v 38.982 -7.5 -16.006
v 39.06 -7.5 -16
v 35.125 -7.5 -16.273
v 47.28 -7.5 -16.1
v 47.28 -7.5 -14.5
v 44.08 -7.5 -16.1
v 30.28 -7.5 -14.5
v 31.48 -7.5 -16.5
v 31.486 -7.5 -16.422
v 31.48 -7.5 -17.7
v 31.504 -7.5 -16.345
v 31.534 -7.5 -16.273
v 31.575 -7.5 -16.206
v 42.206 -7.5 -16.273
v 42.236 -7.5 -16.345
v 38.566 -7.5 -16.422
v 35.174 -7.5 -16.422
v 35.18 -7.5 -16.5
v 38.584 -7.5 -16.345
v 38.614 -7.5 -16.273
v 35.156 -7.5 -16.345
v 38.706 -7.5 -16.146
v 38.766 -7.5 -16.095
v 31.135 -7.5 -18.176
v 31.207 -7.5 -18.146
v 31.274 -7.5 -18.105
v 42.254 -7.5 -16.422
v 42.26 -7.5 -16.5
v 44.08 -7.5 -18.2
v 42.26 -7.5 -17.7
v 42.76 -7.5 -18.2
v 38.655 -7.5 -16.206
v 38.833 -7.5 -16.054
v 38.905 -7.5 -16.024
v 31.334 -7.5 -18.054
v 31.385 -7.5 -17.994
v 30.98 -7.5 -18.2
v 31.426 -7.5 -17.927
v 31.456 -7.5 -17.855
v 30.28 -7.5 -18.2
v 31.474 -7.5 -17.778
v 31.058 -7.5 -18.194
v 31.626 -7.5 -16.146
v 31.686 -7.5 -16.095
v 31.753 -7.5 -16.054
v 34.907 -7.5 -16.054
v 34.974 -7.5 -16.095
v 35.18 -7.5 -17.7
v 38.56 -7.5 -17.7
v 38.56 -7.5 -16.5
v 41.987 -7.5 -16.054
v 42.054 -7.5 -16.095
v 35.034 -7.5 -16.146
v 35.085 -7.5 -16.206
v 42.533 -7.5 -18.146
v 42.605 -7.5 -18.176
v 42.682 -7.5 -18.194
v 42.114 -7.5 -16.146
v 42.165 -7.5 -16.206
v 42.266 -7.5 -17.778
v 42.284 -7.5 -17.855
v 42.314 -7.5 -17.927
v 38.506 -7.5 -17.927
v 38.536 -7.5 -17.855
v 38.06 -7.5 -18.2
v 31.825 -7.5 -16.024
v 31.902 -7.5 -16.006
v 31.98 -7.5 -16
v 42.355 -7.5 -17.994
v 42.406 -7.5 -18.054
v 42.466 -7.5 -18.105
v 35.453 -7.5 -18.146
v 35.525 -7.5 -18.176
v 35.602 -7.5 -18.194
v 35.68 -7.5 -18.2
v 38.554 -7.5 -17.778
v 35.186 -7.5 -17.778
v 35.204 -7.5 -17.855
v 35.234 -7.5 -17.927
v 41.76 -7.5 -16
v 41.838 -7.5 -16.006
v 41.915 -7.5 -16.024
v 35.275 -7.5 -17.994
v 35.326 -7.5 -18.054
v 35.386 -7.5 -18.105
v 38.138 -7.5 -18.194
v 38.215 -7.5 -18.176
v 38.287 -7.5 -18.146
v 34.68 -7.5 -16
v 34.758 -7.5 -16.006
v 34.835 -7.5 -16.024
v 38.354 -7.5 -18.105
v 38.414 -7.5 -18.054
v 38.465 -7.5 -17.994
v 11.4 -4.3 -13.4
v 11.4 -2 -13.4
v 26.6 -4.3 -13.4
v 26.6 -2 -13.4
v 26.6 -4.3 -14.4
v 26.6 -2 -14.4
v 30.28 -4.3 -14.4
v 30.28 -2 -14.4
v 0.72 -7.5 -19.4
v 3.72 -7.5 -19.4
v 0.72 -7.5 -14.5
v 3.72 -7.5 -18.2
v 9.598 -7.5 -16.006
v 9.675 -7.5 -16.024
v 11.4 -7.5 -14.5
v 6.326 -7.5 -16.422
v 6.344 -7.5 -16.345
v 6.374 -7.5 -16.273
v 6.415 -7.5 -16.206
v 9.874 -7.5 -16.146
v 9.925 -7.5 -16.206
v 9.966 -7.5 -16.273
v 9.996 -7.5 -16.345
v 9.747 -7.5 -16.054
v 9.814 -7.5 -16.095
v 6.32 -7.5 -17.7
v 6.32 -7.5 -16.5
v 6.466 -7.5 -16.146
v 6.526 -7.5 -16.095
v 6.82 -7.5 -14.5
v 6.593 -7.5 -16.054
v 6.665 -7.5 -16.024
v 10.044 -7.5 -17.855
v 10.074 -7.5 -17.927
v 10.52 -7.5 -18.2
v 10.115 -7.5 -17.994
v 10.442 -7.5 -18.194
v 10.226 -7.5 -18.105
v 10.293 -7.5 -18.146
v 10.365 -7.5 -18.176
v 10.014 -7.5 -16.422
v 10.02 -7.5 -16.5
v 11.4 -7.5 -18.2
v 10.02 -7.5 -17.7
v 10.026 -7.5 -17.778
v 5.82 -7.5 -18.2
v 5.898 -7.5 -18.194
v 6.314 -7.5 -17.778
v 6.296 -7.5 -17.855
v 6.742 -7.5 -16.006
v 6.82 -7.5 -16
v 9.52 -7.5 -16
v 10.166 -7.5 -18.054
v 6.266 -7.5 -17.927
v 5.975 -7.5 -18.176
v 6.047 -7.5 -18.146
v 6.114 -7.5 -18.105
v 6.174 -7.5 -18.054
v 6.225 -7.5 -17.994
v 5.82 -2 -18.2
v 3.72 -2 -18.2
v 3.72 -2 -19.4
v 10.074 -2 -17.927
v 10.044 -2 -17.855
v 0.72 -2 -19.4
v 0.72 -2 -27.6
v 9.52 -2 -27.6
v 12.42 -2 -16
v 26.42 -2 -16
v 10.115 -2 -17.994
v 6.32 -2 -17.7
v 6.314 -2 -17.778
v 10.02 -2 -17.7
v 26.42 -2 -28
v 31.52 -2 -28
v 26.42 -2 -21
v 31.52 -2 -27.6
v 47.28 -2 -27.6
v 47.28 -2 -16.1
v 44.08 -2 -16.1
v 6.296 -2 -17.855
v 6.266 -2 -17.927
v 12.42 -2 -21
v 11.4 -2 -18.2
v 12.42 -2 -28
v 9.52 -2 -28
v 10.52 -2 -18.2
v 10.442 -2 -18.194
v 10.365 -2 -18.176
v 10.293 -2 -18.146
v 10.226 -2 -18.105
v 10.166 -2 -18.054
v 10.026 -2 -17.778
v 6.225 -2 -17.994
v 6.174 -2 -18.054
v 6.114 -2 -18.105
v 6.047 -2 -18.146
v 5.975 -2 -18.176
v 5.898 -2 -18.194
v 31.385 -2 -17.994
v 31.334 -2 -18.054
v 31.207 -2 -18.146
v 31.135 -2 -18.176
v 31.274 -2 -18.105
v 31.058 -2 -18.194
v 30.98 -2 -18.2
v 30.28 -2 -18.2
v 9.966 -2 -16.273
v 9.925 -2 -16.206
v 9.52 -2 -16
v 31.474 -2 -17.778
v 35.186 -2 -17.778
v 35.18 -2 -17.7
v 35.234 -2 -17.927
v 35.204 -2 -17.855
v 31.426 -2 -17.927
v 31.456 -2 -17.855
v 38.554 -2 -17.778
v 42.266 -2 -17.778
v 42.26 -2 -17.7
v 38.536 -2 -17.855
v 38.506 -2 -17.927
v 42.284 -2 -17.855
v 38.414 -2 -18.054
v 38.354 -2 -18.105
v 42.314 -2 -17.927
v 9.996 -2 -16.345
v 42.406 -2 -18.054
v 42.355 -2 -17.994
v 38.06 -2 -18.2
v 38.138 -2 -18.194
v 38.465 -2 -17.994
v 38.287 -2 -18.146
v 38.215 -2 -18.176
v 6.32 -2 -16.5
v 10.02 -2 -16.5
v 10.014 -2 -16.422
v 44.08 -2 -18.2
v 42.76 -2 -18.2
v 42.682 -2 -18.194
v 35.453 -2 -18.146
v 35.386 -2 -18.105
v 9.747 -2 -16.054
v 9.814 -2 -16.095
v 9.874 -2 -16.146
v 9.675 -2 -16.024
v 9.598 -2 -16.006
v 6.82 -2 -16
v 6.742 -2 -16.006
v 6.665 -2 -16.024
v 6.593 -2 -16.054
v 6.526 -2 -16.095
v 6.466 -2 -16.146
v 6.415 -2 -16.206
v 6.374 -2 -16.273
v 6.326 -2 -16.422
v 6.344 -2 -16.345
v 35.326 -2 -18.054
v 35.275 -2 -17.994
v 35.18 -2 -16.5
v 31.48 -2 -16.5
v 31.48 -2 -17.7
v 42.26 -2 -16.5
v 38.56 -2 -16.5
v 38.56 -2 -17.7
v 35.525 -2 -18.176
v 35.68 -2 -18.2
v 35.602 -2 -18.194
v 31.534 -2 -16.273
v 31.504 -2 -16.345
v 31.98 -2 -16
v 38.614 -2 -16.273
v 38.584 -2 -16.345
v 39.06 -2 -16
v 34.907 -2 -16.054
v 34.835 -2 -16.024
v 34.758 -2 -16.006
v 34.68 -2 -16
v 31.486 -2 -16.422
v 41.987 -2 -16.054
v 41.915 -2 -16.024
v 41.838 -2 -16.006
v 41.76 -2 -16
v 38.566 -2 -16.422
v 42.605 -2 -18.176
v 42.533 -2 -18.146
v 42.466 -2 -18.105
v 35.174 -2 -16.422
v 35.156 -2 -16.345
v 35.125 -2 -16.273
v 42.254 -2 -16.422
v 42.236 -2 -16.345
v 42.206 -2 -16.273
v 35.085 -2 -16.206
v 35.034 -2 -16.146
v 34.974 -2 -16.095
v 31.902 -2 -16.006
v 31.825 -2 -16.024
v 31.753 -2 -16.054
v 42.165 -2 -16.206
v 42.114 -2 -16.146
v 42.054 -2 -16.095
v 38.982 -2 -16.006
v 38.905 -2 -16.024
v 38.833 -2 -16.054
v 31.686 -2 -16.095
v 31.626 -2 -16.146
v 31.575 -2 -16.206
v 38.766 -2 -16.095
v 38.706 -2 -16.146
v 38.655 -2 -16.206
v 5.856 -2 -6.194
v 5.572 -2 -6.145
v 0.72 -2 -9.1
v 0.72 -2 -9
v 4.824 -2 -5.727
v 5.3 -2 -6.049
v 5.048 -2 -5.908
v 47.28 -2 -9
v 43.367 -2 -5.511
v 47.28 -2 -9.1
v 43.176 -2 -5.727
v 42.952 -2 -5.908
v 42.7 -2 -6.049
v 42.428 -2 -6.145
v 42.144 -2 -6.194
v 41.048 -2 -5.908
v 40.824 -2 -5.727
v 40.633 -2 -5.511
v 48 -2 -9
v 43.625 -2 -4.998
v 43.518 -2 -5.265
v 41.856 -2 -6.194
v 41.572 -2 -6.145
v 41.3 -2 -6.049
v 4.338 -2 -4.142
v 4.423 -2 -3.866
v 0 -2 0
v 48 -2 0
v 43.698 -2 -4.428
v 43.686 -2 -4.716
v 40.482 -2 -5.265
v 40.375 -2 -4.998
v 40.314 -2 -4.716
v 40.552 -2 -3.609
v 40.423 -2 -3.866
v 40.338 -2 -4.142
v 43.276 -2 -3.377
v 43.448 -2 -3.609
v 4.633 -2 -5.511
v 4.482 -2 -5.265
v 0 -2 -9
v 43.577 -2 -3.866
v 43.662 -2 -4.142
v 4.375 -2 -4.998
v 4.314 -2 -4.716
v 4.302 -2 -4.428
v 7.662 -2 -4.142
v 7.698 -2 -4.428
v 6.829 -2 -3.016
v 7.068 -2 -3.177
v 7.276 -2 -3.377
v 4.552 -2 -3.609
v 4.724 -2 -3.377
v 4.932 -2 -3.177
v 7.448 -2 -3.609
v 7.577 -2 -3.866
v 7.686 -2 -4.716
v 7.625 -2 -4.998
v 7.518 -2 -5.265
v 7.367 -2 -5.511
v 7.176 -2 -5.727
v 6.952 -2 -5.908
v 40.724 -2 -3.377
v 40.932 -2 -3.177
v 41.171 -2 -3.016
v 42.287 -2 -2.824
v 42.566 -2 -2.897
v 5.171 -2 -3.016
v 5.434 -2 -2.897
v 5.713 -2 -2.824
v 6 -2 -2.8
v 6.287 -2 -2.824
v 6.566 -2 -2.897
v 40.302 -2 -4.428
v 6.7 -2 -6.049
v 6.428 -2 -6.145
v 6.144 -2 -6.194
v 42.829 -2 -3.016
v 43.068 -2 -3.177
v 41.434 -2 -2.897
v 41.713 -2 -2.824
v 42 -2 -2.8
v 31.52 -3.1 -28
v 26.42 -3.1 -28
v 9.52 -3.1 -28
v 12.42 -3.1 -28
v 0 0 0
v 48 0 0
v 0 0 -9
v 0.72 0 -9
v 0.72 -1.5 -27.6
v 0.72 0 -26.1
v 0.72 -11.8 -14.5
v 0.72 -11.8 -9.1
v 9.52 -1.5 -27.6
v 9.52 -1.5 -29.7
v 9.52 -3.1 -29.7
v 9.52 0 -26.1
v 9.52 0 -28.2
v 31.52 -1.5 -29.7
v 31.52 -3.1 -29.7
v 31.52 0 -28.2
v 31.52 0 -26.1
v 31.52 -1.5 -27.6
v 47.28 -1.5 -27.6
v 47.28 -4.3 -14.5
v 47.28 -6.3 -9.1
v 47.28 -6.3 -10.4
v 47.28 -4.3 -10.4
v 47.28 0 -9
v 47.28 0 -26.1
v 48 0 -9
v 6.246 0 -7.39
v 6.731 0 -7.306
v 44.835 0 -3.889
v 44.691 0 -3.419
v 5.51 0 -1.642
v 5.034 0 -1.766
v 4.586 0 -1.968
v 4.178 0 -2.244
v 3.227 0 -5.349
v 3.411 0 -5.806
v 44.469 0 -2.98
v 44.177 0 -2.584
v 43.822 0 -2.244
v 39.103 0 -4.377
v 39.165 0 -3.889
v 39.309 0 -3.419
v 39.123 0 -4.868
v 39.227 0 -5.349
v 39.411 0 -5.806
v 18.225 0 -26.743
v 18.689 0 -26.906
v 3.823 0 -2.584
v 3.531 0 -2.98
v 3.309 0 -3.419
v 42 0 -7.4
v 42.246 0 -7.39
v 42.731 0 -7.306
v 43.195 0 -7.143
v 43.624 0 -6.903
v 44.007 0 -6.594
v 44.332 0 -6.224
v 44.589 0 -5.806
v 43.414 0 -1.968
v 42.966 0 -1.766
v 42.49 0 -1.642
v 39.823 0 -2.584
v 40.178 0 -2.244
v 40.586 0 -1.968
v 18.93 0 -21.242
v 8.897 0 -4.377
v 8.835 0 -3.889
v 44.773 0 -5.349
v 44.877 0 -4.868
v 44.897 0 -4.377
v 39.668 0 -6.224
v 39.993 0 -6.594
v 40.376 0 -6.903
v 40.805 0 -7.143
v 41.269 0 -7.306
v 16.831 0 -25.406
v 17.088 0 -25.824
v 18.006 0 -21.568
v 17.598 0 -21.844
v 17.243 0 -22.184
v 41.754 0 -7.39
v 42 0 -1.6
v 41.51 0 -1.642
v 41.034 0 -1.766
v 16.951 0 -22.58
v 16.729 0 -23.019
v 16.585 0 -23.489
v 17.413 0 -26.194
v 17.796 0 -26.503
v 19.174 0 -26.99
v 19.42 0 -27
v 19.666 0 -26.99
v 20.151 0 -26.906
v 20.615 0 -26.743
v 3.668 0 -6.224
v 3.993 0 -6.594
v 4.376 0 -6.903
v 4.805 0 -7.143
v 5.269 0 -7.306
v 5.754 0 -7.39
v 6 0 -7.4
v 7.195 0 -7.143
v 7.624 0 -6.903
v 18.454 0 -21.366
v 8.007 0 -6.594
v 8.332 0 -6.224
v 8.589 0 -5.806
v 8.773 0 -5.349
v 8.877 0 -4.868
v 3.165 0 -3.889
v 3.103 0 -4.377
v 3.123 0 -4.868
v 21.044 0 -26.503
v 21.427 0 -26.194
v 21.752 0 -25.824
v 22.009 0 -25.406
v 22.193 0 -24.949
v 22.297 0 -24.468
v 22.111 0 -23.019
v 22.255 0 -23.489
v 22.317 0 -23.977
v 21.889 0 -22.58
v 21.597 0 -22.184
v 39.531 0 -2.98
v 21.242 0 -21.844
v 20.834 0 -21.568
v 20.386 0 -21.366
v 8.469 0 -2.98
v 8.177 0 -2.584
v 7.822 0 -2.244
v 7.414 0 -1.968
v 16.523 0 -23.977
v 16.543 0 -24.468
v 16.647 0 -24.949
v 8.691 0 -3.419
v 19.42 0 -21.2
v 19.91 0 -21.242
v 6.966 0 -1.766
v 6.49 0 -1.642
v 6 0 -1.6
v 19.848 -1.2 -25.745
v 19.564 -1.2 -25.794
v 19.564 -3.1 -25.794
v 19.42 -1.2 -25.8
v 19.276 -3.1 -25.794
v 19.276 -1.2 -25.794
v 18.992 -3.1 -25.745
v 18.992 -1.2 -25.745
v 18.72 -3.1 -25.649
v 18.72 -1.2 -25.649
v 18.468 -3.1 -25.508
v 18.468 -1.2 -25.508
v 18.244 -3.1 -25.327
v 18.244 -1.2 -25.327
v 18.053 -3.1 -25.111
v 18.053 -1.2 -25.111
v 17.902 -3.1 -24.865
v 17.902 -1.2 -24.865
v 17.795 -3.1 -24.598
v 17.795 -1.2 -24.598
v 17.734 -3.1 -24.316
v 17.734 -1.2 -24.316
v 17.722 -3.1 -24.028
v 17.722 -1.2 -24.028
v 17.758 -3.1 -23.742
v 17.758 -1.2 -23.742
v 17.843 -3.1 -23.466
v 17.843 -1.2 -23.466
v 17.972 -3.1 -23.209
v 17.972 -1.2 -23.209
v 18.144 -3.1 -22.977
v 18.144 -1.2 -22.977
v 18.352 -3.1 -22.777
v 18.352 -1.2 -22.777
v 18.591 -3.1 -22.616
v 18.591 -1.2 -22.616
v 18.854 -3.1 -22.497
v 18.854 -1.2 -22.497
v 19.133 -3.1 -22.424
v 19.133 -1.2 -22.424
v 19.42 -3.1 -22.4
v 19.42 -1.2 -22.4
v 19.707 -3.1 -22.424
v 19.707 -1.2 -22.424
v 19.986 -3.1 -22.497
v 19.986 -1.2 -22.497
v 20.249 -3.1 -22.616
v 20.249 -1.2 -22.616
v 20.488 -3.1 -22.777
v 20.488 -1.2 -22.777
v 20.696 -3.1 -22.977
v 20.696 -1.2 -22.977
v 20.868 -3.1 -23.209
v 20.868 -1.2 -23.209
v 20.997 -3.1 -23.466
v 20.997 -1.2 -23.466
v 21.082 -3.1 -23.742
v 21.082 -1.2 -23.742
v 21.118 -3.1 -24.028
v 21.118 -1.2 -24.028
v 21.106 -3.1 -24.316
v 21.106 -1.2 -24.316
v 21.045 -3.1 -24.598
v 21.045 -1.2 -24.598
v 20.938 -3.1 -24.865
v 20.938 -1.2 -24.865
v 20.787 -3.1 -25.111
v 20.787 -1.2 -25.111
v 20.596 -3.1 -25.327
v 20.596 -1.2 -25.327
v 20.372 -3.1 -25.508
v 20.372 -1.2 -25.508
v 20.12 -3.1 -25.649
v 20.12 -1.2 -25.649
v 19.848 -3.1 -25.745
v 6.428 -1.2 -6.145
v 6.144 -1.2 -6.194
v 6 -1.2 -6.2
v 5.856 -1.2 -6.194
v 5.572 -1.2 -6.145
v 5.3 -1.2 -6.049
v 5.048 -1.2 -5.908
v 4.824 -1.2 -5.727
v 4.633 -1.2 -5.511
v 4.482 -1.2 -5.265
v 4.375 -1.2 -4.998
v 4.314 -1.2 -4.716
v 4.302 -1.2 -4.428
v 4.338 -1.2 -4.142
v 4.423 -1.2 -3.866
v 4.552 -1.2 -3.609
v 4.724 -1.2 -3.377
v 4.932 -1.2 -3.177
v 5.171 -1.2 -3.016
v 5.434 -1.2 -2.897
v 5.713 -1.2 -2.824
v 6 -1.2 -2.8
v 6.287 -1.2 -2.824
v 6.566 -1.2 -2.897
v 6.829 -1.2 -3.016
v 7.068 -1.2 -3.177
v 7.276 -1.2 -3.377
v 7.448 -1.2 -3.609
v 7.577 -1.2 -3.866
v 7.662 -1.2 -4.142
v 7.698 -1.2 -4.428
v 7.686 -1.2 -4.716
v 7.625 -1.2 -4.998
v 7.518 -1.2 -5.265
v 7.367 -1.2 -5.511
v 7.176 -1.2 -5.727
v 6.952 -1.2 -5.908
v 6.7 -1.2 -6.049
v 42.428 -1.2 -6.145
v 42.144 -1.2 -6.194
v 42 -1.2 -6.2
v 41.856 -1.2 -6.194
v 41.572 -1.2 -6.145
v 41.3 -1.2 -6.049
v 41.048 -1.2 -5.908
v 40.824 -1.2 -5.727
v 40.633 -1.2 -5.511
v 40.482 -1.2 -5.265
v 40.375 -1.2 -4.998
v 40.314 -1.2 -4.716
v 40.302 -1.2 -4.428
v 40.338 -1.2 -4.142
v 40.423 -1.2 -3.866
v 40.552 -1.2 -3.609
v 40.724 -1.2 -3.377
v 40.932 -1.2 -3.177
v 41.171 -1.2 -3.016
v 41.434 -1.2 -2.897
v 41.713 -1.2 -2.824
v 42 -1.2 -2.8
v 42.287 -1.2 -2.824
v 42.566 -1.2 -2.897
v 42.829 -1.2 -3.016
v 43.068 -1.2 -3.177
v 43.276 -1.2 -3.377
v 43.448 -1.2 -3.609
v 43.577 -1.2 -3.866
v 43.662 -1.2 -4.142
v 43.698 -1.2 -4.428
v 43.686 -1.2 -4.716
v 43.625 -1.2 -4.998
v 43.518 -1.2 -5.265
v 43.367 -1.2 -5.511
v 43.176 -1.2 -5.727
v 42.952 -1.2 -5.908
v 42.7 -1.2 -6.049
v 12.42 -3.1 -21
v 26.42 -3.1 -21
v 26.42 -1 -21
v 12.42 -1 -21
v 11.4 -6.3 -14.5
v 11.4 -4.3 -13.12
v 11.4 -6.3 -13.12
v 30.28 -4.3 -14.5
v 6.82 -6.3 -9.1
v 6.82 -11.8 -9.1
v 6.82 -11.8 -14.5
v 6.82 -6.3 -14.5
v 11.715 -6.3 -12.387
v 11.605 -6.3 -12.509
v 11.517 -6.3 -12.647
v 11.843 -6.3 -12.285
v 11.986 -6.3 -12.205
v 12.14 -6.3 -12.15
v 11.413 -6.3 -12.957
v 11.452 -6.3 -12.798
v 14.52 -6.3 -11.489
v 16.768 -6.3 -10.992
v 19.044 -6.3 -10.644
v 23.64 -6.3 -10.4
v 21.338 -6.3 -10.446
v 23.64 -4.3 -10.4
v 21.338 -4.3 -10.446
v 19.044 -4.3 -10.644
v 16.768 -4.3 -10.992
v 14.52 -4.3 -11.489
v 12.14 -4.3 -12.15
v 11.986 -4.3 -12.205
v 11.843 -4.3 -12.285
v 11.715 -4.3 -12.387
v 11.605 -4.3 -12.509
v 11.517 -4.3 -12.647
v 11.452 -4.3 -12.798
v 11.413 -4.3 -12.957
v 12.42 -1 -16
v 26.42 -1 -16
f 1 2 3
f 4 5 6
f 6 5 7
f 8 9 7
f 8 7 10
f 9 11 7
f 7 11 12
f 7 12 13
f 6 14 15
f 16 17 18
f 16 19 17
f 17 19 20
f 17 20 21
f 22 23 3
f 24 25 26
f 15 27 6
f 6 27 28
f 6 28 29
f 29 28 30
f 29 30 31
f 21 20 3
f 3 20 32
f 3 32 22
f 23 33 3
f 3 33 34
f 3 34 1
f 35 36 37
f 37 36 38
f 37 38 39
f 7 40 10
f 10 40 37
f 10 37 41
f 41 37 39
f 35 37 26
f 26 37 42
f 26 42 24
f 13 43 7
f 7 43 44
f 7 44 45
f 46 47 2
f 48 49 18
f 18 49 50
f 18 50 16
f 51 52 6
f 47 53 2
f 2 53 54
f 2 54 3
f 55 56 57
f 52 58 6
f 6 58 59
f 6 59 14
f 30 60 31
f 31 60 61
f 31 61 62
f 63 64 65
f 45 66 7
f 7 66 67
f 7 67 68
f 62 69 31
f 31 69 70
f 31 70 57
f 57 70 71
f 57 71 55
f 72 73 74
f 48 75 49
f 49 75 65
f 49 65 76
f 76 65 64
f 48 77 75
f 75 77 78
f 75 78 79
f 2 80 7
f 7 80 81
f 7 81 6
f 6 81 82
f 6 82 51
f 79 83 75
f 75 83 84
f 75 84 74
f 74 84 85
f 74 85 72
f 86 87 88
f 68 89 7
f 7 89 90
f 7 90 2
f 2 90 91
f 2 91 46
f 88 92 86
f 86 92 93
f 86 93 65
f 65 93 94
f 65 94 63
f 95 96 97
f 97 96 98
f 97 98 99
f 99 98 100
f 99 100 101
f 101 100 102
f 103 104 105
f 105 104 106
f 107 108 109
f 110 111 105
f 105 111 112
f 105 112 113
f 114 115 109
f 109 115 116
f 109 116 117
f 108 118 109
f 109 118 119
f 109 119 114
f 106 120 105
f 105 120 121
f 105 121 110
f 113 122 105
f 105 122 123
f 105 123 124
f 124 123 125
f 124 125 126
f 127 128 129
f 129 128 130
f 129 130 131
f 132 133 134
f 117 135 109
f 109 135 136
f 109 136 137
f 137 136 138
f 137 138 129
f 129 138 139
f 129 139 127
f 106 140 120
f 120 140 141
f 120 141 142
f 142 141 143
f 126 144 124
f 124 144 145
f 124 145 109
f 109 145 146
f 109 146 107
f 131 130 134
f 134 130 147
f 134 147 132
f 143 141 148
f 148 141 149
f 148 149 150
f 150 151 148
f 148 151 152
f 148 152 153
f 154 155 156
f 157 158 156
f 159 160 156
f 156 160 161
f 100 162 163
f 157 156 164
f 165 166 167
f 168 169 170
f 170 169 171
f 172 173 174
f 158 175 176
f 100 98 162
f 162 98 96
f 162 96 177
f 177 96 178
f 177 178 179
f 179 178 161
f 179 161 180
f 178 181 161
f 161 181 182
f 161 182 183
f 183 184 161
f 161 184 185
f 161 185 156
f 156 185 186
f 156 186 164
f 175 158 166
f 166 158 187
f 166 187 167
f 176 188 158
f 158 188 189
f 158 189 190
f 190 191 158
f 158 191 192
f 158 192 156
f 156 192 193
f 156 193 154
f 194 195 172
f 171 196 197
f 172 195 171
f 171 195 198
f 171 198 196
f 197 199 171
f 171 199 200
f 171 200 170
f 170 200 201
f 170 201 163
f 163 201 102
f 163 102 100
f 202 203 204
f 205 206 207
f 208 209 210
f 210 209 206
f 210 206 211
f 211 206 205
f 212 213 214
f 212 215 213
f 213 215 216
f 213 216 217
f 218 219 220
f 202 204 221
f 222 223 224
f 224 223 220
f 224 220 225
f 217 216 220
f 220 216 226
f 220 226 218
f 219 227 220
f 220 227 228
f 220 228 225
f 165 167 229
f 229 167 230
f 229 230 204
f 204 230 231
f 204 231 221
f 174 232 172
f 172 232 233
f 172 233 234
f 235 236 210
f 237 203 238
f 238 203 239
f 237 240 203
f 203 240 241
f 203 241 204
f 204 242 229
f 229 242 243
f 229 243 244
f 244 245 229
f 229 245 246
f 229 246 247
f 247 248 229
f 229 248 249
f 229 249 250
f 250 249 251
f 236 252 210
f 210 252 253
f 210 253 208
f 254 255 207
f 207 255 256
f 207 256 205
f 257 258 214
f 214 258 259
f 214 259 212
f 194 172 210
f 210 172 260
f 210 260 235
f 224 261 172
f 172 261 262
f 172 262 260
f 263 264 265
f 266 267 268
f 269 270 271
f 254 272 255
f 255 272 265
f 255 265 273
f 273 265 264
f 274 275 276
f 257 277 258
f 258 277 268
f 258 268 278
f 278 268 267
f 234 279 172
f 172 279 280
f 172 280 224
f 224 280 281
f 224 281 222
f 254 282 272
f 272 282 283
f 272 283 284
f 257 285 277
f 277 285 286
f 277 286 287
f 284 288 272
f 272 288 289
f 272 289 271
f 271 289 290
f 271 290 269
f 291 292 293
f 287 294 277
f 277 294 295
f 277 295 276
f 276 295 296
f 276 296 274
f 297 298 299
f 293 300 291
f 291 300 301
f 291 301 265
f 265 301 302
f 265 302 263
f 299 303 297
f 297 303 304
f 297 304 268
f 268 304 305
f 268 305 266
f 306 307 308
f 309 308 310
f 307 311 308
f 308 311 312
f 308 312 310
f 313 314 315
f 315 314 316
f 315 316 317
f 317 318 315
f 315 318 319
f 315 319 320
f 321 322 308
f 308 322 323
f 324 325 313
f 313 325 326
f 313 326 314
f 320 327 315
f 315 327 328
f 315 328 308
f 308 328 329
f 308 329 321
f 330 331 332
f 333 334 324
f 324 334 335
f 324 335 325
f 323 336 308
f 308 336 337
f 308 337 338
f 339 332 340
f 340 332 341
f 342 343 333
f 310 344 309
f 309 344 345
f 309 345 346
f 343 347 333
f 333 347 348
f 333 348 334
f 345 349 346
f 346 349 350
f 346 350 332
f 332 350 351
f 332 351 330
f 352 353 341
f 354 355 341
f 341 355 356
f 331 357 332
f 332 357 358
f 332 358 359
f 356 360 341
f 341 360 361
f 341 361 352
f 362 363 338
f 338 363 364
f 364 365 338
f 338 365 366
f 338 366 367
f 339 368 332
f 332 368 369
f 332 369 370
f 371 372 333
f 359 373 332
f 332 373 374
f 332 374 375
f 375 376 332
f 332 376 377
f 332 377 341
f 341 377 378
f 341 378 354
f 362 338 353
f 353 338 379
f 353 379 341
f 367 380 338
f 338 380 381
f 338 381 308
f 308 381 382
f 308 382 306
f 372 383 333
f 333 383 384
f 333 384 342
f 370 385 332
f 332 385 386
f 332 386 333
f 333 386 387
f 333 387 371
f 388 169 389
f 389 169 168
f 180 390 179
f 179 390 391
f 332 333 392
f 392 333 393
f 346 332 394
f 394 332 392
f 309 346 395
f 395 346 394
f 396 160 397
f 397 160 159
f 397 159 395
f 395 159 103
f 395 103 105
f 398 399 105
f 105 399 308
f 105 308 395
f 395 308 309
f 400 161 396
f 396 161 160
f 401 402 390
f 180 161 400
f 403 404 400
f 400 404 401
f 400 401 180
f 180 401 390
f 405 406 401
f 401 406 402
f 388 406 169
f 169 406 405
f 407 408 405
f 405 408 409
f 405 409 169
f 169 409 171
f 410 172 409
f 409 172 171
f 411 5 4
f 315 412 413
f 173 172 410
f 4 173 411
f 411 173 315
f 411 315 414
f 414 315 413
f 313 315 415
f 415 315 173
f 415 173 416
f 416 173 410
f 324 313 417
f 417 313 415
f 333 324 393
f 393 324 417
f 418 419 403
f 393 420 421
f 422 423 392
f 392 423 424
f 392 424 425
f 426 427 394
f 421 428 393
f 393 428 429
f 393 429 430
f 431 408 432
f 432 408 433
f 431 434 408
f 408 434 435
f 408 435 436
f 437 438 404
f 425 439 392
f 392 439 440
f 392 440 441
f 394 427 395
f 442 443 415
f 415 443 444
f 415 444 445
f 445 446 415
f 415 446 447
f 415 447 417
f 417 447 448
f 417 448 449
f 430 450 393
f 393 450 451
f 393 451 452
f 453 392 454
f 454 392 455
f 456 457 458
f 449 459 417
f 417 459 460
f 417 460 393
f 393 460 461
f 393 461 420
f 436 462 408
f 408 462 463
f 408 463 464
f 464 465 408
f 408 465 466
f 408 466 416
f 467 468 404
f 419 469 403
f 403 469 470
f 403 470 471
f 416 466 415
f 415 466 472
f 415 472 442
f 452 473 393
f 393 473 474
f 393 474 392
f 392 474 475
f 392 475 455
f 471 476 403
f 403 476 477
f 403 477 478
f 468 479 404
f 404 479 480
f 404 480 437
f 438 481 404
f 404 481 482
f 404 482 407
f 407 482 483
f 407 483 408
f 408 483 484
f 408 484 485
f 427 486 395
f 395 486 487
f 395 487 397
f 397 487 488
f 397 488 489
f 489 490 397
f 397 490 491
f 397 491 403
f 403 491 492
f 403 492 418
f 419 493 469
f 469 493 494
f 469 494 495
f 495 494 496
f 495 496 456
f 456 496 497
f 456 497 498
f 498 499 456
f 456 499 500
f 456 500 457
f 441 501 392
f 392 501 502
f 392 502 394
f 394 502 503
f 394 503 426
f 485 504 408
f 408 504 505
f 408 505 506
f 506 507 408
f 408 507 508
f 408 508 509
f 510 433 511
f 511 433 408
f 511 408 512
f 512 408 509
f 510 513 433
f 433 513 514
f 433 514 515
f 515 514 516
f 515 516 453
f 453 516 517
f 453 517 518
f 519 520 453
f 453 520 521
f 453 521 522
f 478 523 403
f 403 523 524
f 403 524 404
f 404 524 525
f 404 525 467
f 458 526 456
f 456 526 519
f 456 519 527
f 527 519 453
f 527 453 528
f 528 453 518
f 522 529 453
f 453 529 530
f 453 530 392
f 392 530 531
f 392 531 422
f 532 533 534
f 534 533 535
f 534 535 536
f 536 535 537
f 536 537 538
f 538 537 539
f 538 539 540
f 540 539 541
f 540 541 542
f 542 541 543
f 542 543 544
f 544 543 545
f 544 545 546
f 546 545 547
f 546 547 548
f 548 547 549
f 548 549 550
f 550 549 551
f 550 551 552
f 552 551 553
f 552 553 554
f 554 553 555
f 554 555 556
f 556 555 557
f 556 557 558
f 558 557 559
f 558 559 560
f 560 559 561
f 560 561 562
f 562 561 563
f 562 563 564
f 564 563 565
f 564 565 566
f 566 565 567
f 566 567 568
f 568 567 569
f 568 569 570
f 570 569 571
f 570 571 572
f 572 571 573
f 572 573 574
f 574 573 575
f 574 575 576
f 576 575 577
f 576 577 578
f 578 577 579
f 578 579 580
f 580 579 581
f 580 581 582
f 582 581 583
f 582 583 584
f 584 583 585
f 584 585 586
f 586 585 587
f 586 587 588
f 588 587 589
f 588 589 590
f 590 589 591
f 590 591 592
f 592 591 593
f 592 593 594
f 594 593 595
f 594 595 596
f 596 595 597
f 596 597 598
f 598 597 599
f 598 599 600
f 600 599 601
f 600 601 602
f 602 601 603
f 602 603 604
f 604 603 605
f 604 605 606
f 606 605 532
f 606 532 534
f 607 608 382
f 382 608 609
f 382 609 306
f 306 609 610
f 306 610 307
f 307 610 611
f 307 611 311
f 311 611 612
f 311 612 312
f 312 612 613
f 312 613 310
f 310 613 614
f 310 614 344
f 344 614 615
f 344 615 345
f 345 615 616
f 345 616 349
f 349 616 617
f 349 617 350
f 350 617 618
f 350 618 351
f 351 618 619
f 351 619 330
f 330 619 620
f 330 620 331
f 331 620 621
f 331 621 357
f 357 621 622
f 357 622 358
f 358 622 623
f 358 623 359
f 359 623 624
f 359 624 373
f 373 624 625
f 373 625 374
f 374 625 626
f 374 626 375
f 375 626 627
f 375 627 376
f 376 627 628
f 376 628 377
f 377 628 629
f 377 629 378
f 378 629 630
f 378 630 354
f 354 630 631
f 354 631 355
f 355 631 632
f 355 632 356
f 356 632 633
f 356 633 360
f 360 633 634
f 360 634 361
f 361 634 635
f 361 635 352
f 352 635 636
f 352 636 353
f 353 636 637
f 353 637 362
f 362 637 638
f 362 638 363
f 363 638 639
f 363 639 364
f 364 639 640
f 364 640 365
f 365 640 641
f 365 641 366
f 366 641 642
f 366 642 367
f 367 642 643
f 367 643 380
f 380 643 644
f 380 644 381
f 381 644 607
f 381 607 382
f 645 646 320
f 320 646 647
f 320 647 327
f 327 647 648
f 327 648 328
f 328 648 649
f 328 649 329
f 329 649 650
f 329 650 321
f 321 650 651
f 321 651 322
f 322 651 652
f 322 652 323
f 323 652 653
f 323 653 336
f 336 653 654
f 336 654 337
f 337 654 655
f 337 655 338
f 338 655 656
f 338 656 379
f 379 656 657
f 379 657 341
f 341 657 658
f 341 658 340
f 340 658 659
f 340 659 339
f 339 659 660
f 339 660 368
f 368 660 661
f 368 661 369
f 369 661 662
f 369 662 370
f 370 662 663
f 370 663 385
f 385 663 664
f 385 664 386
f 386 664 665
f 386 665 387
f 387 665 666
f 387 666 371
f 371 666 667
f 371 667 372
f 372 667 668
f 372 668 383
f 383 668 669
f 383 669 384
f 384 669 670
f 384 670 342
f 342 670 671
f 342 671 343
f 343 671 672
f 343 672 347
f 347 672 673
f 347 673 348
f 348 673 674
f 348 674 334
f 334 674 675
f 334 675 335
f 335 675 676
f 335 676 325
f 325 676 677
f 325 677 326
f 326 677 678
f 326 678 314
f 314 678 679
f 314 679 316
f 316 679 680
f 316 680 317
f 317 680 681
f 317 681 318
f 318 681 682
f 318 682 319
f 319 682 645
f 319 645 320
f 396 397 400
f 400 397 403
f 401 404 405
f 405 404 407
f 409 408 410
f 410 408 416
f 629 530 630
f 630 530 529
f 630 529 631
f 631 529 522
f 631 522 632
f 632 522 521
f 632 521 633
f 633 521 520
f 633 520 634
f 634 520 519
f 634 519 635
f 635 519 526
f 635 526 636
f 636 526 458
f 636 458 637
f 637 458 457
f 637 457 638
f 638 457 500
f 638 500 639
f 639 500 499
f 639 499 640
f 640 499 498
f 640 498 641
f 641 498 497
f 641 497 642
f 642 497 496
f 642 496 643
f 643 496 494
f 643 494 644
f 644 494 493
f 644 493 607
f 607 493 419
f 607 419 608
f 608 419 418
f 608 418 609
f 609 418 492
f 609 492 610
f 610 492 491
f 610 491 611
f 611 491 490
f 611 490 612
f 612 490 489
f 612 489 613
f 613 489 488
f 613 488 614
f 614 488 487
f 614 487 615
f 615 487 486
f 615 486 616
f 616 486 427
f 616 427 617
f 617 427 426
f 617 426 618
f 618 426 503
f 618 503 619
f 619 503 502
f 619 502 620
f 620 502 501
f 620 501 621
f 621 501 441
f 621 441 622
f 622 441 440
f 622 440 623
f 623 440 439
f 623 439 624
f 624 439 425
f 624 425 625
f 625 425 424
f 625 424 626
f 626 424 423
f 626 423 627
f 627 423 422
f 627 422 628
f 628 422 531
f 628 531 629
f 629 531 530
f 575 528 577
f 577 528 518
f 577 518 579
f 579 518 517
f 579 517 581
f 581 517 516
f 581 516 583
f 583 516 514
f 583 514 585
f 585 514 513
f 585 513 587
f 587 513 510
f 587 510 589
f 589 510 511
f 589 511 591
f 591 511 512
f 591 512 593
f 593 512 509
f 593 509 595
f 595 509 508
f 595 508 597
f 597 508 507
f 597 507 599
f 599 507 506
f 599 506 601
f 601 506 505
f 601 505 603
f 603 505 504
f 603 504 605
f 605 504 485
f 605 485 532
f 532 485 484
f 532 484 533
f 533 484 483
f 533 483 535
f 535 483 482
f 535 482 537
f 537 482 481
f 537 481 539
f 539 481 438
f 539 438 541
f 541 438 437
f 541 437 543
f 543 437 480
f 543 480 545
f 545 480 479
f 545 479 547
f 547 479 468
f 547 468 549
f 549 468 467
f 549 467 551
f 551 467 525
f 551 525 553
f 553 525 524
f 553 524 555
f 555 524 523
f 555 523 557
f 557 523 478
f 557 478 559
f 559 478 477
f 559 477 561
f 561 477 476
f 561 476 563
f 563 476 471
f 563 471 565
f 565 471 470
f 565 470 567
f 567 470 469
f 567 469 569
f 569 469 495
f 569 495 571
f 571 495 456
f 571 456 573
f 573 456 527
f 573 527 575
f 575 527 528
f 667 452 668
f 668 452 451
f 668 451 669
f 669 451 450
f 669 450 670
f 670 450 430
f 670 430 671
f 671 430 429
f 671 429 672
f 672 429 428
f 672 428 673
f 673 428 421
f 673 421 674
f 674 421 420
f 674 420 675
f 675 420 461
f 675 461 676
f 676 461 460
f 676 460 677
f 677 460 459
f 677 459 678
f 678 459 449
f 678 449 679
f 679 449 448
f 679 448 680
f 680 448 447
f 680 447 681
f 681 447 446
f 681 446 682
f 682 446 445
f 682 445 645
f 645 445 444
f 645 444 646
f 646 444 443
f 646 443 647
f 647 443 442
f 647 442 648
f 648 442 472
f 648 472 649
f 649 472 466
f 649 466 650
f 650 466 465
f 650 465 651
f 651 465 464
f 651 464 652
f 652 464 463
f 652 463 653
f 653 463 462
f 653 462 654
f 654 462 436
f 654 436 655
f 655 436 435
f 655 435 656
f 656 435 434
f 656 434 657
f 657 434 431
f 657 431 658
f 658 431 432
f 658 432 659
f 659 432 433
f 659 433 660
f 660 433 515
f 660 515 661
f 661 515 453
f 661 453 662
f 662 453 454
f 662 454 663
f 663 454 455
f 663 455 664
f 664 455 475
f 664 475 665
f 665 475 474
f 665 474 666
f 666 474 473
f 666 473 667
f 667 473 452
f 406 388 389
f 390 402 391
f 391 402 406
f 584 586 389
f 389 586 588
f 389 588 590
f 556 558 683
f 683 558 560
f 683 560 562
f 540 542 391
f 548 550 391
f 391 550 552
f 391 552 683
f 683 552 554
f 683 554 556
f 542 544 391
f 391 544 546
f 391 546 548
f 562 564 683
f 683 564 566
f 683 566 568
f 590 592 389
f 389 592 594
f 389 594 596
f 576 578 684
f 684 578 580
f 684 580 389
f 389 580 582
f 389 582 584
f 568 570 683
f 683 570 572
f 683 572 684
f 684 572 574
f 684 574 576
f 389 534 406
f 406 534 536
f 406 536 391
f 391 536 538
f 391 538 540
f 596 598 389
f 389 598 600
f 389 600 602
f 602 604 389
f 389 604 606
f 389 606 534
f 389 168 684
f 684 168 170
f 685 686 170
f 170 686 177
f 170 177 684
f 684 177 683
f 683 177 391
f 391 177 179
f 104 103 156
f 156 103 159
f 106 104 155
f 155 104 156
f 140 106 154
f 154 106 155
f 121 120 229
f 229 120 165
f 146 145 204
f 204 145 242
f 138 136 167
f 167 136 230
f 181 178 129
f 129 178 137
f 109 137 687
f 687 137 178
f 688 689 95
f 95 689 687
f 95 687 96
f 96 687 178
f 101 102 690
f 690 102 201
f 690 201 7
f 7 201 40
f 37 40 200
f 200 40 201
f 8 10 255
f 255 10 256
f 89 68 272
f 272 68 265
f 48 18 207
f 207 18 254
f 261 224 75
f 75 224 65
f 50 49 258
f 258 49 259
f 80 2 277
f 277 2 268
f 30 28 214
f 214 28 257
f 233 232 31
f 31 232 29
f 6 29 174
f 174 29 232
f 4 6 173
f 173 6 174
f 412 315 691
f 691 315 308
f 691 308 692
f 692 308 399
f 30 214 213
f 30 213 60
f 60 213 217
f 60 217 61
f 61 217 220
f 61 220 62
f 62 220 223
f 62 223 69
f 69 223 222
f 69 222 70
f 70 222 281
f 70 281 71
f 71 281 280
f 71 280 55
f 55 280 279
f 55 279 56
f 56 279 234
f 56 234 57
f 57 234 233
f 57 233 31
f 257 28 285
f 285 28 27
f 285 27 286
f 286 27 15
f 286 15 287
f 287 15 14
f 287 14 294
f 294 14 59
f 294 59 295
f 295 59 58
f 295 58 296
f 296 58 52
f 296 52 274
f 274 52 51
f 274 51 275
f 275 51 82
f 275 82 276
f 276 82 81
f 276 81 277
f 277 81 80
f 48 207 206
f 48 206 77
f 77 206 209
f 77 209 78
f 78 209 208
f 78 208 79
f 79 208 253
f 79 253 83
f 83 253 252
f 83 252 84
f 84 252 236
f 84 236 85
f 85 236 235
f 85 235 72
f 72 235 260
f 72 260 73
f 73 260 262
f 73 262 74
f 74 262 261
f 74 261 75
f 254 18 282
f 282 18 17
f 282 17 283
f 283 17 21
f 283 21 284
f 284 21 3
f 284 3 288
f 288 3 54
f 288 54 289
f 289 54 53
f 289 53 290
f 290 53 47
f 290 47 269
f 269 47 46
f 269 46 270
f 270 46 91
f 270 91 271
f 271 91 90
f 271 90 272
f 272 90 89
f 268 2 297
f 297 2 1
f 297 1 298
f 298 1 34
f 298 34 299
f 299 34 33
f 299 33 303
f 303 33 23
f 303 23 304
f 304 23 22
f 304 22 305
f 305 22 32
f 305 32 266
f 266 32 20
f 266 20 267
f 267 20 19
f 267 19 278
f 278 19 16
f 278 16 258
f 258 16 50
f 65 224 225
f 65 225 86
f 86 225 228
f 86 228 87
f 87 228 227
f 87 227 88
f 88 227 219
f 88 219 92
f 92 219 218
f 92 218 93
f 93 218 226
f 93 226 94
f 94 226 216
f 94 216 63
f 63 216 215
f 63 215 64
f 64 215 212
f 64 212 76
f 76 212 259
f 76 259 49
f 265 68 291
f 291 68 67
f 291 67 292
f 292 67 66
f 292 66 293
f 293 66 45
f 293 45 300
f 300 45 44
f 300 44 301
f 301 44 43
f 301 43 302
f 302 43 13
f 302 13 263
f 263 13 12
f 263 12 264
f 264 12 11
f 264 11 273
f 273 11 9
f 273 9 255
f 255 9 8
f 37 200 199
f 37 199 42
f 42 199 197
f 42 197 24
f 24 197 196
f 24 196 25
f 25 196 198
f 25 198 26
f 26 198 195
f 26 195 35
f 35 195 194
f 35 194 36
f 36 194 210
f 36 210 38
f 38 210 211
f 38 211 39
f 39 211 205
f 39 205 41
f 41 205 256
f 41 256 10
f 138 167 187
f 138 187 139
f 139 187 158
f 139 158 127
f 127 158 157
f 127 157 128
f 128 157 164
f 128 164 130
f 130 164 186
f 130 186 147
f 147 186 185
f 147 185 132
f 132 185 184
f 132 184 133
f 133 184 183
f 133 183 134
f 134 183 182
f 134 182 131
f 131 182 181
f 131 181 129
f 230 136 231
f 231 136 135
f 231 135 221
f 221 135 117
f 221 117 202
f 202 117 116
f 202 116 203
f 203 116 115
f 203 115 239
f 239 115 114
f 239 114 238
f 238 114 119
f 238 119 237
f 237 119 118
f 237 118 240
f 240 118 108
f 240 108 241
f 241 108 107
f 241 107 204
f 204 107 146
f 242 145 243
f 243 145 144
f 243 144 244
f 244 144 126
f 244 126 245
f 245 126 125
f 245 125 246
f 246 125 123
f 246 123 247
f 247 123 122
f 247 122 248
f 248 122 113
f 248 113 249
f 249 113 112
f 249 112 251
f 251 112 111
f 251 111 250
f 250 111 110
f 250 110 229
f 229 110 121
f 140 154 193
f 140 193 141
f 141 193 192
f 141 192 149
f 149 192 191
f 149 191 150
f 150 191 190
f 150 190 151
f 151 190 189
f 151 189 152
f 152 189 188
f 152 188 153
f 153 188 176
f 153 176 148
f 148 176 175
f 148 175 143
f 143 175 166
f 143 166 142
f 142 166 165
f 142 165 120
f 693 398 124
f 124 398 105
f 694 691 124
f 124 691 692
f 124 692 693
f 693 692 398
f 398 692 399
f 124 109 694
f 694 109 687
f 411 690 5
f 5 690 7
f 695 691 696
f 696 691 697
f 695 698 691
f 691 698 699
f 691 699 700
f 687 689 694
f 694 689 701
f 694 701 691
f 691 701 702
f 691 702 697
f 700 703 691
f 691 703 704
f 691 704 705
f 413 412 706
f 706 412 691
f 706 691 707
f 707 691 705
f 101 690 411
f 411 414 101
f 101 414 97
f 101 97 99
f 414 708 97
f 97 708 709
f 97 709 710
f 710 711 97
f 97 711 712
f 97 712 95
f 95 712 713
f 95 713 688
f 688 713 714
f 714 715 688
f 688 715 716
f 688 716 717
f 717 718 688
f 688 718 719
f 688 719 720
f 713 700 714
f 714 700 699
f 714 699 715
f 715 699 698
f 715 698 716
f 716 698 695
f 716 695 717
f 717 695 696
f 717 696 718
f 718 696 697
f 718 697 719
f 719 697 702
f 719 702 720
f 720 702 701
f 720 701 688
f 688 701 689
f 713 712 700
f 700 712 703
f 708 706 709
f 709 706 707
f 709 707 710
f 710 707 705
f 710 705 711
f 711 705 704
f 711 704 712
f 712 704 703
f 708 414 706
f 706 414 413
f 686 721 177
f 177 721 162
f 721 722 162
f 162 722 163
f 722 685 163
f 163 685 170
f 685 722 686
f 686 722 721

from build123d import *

# Parameters (mm, degrees)
SKETCH1_R           = 1.7
BOSS_EXTRUDE1_DEPTH = 2
CHAMFER1_SIZE       = 1.5
CHAMFER2_SIZE       = 1.2
SKETCH2_W           = 22
SKETCH2_H           = 1.7
BOSS_EXTRUDE2_DEPTH = 1.1
SKETCH3_W           = 14
SKETCH3_H           = 7
SKETCH3_R           = 1.7
BOSS_EXTRUDE3_DEPTH = 1.1
BOSS_EXTRUDE4_DEPTH = 5.5
FILLET1_R           = 0.5
SKETCH5_W           = 6.1
SKETCH5_H           = 5.4
BOSS_EXTRUDE5_DEPTH = 4.3
SKETCH6_W           = 40.46
SKETCH6_H           = 5.4
CUT_EXTRUDE1_DEPTH  = 1.2
CUT_EXTRUDE2_DEPTH  = 2
SKETCH8_W           = 14
SKETCH8_H           = 5
CUT_EXTRUDE3_DEPTH  = 1


with BuildPart() as part:
    # Sketch1 → Boss-Extrude1 (new body)
    with BuildSketch(Plane(origin=(0, 0, 0), x_dir=(1, 0, 0), z_dir=(0, 1, 0))):
        Polygon((0, 0), (0, 9), (0.72, 9), (0.72, 27.6), (9.52, 27.6), (9.52, 29.7), (31.52, 29.7), (31.52, 27.6), (47.28, 27.6), (47.28, 9), (48, 9), (48, 0), align=None)
        with Locations(Location((19.42, 24.1, 0), (0, 0, 270))):
            Circle(SKETCH1_R, mode=Mode.SUBTRACT)
        with Locations(Location((6, 4.5, 0), (0, 0, 270))):
            Circle(SKETCH1_R, mode=Mode.SUBTRACT)
        with Locations(Location((42, 4.5, 0), (0, 0, 270))):
            Circle(SKETCH1_R, mode=Mode.SUBTRACT)
    extrude(amount=-BOSS_EXTRUDE1_DEPTH)

    # Chamfer1
    chamfer1_edges = [part.edges().sort_by_distance(p)[0] for p in [
        (5.12, 0, -27.6),
        (20.52, 0, -29.7),
        (39.4, 0, -27.6),
    ]]
    chamfer(chamfer1_edges, length=CHAMFER1_SIZE)

    # Chamfer2
    chamfer2_edges = [part.edges().sort_by_distance(p)[0] for p in [
        (19.42, 0, -25.8),
        (6, 0, -6.2),
        (42, 0, -6.2),
    ]]
    chamfer(chamfer2_edges, length=CHAMFER2_SIZE)

    # Sketch2 → Boss-Extrude2 (add)
    with BuildSketch(Plane.XZ.offset(2)):
        with Locations((20.52, -28.85)):
            Rectangle(SKETCH2_W, SKETCH2_H)
    extrude(amount=BOSS_EXTRUDE2_DEPTH)

    # Sketch3 → Boss-Extrude3 (add)
    with BuildSketch(Plane.XZ.offset(2)):
        with Locations((19.42, -24.5)):
            Rectangle(SKETCH3_W, SKETCH3_H)
        with Locations(Location((19.42, -24.1, 0), (0, 0, 90))):
            Circle(SKETCH3_R, mode=Mode.SUBTRACT)
    extrude(amount=BOSS_EXTRUDE3_DEPTH)

    # Sketch4 → Boss-Extrude4 (add)
    with BuildSketch(Plane.XZ.offset(2)):
        Polygon((0.72, -9.1), (47.28, -9.1), (47.28, -16.1), (44.08, -16.1), (44.08, -16.3), (44.08, -18.2), (42.26, -18.2), (42.26, -16), (38.56, -16), (38.56, -18.2), (35.18, -18.2), (35.18, -16), (31.48, -16), (31.48, -18.2), (30.28, -18.2), (30.28, -14.4), (26.6, -14.4), (26.6, -13.4), (11.4, -13.4), (11.4, -18.2), (10.02, -18.2), (10.02, -16), (6.32, -16), (6.32, -18.2), (3.72, -18.2), (3.72, -19.4), (0.72, -19.4), align=None)
    extrude(amount=BOSS_EXTRUDE4_DEPTH)

    # Fillet1
    fillet1_edges = [part.edges().sort_by_distance(p)[0] for p in [
        (6.32, -4.75, -18.2),
        (6.32, -4.75, -16),
        (10.02, -4.75, -16),
        (10.02, -4.75, -18.2),
        (31.48, -4.75, -18.2),
        (31.48, -4.75, -16),
        (35.18, -4.75, -16),
        (35.18, -4.75, -18.2),
        (38.56, -4.75, -18.2),
        (38.56, -4.75, -16),
        (42.26, -4.75, -16),
        (42.26, -4.75, -18.2),
    ]]
    fillet(fillet1_edges, radius=FILLET1_R)

    # Sketch5 → Boss-Extrude5 (add)
    with BuildSketch(Plane.XZ.offset(7.5)):
        with Locations((3.77, -11.8)):
            Rectangle(SKETCH5_W, SKETCH5_H)
    extrude(amount=BOSS_EXTRUDE5_DEPTH)

    # Sketch6 → Cut-Extrude1 (cut)
    with BuildSketch(Plane.XZ.offset(7.5)):
        with Locations((27.05, -11.8)):
            Rectangle(SKETCH6_W, SKETCH6_H)
    extrude(amount=-CUT_EXTRUDE1_DEPTH, mode=Mode.SUBTRACT)

    # Sketch7 → Cut-Extrude2 (cut)
    with BuildSketch(Plane.XZ.offset(6.3)):
        with BuildLine():
            Line((11.4, -13.4), (11.4, -13.12))
            ThreePointArc((11.4, -13.12), (11.60493511, -12.509074208), (12.14, -12.15))
            Line((12.14, -12.15), (14.52, -11.489318534))
            ThreePointArc((14.52, -11.489318534), (19.044112004, -10.644197545), (23.64, -10.4))
            Line((23.64, -10.4), (47.28, -10.4))
            Line((47.28, -10.4), (47.28, -14.5))
            Line((47.28, -14.5), (26.6, -14.5))
            Line((26.6, -14.5), (26.6, -13.4))
            Line((26.6, -13.4), (11.4, -13.4))
        make_face()
    extrude(amount=-CUT_EXTRUDE2_DEPTH, mode=Mode.SUBTRACT)

    # Sketch8 → Cut-Extrude3 (cut)
    with BuildSketch(Plane.XZ.offset(2)):
        with Locations((19.42, -18.5)):
            Rectangle(SKETCH8_W, SKETCH8_H)
    extrude(amount=-CUT_EXTRUDE3_DEPTH, mode=Mode.SUBTRACT)


solid = part.part
